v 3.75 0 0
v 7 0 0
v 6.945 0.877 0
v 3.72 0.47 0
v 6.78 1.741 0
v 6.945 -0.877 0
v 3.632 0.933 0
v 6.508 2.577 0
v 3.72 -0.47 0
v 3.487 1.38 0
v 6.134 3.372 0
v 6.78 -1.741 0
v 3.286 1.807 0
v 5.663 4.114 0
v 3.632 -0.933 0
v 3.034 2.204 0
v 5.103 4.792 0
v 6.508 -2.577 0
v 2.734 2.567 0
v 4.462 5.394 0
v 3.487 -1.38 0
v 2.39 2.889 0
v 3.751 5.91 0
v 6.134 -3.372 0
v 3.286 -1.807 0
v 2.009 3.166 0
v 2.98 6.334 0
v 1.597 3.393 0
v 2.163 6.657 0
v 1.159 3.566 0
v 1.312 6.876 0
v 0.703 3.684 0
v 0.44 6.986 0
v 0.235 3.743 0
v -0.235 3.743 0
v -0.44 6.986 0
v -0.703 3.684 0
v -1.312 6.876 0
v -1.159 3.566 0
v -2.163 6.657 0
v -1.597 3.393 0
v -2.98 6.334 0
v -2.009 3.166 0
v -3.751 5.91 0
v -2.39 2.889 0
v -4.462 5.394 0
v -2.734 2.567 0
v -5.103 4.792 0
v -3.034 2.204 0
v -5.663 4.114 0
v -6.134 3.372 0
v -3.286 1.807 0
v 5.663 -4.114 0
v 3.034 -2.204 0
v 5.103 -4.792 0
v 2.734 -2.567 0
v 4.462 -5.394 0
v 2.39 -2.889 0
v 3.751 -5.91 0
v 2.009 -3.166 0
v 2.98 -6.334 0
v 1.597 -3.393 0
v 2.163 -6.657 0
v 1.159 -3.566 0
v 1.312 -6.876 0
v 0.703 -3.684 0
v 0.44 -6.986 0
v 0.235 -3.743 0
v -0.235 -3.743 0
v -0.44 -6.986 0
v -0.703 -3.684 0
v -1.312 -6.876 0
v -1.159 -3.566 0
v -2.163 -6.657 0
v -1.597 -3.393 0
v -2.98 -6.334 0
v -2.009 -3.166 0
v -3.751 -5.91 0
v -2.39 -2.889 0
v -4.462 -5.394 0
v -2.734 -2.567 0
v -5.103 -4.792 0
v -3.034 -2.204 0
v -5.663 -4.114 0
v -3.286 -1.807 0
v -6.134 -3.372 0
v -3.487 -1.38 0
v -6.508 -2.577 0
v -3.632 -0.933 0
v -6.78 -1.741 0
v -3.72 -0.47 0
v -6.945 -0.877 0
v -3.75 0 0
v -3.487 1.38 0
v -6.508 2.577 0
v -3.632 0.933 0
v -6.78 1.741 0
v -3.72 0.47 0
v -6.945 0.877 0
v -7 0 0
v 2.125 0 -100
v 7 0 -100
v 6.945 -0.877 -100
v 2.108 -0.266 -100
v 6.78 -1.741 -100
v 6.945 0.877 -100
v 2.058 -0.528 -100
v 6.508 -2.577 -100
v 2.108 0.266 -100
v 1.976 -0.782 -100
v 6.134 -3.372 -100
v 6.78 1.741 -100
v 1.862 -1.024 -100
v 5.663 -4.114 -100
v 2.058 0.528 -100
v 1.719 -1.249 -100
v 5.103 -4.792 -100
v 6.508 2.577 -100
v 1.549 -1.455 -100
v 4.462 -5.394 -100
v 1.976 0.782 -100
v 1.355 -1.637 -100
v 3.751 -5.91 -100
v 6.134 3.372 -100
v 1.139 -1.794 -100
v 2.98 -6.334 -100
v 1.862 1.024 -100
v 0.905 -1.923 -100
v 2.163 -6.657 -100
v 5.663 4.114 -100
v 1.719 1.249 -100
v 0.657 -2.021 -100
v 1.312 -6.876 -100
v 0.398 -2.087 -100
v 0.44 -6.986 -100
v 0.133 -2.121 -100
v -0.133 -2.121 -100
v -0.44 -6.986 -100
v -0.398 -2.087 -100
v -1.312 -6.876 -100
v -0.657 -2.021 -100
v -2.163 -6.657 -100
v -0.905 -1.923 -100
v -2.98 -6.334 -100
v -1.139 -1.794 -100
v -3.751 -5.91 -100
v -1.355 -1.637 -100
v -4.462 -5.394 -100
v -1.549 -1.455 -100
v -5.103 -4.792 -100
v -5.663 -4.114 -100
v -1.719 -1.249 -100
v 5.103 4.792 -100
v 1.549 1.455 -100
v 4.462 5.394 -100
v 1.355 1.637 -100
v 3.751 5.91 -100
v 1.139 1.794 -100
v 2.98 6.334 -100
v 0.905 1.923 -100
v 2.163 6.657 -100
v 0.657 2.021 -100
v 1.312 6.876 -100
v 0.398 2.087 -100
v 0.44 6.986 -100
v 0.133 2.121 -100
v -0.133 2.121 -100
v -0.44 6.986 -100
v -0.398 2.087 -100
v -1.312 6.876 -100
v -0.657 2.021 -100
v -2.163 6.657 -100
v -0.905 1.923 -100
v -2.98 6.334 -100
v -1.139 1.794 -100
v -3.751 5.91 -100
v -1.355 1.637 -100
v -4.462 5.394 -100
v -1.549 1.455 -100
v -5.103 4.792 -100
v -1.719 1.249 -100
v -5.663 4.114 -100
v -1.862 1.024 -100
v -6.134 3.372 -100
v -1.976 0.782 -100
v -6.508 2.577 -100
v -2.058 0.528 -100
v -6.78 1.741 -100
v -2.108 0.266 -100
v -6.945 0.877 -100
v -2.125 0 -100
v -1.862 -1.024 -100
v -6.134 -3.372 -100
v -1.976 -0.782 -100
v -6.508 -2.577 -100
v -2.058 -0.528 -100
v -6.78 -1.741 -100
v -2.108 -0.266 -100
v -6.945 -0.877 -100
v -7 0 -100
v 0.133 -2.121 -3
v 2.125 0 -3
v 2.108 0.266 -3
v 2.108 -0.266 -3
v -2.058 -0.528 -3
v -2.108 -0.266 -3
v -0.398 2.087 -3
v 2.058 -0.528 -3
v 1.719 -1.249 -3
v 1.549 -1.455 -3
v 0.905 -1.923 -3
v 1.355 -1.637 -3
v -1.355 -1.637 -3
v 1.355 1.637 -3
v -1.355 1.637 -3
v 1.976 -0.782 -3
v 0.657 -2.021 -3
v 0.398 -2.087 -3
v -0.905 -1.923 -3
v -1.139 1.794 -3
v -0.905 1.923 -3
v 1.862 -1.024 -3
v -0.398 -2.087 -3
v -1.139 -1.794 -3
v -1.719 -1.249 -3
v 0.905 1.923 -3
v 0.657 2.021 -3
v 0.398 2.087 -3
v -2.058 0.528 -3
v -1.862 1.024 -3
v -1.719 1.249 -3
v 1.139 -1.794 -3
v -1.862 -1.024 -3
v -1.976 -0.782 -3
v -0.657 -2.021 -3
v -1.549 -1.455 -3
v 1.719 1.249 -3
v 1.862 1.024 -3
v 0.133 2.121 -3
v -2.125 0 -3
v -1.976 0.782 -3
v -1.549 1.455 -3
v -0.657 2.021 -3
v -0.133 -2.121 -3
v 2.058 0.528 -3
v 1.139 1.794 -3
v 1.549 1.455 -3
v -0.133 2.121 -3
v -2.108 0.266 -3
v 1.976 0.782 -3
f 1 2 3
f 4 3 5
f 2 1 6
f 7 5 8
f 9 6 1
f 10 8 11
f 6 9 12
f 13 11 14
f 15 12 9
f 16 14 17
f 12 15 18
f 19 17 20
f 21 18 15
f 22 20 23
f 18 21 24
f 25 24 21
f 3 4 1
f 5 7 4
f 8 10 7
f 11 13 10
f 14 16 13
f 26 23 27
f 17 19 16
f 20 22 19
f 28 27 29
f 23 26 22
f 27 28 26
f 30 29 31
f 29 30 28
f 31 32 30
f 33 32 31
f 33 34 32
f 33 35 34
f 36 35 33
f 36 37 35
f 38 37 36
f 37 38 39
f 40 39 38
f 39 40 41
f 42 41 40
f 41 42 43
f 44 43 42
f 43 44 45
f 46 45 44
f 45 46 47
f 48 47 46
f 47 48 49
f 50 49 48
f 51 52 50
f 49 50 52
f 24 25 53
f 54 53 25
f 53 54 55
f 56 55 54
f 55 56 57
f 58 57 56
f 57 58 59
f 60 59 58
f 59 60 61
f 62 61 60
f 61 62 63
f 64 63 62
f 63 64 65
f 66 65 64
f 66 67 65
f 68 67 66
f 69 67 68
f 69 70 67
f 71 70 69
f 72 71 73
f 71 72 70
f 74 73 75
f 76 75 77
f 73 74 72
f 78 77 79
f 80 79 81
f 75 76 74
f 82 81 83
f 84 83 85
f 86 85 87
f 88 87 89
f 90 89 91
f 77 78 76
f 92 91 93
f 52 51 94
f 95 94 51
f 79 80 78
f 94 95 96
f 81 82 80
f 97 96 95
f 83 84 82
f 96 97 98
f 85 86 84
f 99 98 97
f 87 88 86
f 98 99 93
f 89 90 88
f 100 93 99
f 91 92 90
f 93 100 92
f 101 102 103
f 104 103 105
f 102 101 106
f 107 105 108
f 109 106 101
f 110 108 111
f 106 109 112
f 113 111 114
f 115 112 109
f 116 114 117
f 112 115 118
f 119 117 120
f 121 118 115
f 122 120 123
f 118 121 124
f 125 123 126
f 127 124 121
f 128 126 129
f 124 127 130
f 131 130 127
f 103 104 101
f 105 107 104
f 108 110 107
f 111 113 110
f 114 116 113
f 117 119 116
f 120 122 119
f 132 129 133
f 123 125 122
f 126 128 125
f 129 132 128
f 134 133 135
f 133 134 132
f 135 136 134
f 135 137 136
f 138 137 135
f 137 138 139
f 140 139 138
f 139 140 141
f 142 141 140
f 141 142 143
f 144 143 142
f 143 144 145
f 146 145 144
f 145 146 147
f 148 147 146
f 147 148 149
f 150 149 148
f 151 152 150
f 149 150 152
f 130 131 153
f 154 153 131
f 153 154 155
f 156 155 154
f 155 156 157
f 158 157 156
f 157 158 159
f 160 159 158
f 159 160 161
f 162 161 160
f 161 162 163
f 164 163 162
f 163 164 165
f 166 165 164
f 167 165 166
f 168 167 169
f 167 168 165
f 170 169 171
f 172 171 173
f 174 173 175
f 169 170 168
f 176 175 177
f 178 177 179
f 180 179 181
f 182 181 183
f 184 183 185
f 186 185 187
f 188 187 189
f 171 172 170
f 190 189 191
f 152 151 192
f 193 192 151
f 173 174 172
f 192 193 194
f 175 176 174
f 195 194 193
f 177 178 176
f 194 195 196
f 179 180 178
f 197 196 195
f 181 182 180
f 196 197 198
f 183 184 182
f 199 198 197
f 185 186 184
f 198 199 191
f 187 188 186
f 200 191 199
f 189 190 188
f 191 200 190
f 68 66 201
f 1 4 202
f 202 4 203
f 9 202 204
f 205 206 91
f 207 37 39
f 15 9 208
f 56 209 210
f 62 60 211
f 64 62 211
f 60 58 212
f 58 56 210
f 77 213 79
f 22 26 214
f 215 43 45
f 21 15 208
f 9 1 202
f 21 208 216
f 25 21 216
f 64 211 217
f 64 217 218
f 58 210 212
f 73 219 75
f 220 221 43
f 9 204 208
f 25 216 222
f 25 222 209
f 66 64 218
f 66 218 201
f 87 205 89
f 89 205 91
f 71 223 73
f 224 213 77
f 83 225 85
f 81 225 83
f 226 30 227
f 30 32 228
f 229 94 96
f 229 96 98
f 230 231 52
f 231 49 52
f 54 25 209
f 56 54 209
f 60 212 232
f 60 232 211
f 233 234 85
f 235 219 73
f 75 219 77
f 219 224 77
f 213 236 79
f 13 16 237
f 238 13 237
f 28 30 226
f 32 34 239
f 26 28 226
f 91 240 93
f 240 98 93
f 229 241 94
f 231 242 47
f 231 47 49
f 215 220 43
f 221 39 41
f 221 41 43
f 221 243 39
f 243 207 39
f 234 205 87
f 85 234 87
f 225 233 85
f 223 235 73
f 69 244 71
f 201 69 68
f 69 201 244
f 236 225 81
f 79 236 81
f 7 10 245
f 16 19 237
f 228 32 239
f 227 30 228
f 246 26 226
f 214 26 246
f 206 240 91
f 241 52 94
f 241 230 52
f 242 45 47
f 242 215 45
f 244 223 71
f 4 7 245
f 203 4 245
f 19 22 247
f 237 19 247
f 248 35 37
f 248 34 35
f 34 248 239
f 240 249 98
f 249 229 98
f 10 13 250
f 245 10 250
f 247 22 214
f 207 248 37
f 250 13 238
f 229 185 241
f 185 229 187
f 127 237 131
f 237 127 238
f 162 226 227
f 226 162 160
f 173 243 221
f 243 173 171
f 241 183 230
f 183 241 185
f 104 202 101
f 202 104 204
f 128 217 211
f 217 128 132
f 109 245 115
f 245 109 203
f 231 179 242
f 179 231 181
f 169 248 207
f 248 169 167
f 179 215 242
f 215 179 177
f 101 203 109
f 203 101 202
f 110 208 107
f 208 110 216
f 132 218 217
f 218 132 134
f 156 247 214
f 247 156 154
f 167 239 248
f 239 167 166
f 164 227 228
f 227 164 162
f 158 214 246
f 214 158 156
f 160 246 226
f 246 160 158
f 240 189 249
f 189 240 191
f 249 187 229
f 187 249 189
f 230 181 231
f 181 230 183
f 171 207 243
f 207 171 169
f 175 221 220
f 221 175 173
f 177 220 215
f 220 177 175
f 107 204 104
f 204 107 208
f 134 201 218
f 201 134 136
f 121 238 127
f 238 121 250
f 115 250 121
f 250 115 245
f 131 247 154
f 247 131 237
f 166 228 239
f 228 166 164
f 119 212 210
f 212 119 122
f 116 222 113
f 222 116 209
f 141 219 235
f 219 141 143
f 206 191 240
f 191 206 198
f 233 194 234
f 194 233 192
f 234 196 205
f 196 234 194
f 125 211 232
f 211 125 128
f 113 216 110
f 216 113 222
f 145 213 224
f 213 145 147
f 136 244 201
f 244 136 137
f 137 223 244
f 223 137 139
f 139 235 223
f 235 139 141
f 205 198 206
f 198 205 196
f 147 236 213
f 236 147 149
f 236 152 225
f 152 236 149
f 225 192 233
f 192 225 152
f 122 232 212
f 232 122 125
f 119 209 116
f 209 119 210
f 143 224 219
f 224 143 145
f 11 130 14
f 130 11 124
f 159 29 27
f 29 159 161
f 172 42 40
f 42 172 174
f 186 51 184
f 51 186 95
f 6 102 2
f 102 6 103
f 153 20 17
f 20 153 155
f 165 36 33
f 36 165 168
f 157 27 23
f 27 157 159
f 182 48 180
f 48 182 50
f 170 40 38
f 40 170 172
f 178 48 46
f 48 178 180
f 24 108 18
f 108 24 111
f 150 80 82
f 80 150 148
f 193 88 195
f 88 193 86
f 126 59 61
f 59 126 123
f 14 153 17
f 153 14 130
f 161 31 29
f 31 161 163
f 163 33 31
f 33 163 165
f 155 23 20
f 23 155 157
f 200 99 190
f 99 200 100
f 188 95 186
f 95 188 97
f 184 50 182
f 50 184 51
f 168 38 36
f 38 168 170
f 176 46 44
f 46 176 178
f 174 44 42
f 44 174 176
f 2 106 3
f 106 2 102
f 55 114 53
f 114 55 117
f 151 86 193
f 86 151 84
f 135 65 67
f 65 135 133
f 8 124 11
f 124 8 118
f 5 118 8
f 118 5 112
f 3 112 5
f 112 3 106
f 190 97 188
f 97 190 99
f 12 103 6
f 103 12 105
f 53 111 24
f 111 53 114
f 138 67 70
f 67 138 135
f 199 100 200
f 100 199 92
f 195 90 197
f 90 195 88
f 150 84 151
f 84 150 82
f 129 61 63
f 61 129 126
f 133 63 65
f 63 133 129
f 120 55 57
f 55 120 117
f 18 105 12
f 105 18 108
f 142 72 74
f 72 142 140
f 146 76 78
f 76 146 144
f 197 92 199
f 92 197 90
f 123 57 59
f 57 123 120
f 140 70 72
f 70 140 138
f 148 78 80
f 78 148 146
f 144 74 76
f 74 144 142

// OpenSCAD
$fn = 50;


difference() {
	union() {
		translate(v = [0, 0, -100.0000000000]) {
			cylinder(h = 100, r = 7.0000000000);
		}
		cylinder(h = 0, r = 16.0000000000);
	}
	union() {
		translate(v = [0, 0, 0]) {
			rotate(a = [0, 0, 0]) {
				difference() {
					union() {
						#translate(v = [0, 0, -100.0000000000]) {
							cylinder(h = 100, r = 2.0000000000);
						}
						#translate(v = [0, 0, -3]) {
							cylinder(h = 3, r = 7.0000000000, r1 = 2.1250000000, r2 = 3.7500000000);
						}
						#translate(v = [0, 0, -100.0000000000]) {
							cylinder(h = 100, r = 2.1250000000);
						}
						#translate(v = [0, 0, -100.0000000000]) {
							cylinder(h = 100, r = 2.0000000000);
						}
					}
					union();
				}
			}
		}
	}
}
